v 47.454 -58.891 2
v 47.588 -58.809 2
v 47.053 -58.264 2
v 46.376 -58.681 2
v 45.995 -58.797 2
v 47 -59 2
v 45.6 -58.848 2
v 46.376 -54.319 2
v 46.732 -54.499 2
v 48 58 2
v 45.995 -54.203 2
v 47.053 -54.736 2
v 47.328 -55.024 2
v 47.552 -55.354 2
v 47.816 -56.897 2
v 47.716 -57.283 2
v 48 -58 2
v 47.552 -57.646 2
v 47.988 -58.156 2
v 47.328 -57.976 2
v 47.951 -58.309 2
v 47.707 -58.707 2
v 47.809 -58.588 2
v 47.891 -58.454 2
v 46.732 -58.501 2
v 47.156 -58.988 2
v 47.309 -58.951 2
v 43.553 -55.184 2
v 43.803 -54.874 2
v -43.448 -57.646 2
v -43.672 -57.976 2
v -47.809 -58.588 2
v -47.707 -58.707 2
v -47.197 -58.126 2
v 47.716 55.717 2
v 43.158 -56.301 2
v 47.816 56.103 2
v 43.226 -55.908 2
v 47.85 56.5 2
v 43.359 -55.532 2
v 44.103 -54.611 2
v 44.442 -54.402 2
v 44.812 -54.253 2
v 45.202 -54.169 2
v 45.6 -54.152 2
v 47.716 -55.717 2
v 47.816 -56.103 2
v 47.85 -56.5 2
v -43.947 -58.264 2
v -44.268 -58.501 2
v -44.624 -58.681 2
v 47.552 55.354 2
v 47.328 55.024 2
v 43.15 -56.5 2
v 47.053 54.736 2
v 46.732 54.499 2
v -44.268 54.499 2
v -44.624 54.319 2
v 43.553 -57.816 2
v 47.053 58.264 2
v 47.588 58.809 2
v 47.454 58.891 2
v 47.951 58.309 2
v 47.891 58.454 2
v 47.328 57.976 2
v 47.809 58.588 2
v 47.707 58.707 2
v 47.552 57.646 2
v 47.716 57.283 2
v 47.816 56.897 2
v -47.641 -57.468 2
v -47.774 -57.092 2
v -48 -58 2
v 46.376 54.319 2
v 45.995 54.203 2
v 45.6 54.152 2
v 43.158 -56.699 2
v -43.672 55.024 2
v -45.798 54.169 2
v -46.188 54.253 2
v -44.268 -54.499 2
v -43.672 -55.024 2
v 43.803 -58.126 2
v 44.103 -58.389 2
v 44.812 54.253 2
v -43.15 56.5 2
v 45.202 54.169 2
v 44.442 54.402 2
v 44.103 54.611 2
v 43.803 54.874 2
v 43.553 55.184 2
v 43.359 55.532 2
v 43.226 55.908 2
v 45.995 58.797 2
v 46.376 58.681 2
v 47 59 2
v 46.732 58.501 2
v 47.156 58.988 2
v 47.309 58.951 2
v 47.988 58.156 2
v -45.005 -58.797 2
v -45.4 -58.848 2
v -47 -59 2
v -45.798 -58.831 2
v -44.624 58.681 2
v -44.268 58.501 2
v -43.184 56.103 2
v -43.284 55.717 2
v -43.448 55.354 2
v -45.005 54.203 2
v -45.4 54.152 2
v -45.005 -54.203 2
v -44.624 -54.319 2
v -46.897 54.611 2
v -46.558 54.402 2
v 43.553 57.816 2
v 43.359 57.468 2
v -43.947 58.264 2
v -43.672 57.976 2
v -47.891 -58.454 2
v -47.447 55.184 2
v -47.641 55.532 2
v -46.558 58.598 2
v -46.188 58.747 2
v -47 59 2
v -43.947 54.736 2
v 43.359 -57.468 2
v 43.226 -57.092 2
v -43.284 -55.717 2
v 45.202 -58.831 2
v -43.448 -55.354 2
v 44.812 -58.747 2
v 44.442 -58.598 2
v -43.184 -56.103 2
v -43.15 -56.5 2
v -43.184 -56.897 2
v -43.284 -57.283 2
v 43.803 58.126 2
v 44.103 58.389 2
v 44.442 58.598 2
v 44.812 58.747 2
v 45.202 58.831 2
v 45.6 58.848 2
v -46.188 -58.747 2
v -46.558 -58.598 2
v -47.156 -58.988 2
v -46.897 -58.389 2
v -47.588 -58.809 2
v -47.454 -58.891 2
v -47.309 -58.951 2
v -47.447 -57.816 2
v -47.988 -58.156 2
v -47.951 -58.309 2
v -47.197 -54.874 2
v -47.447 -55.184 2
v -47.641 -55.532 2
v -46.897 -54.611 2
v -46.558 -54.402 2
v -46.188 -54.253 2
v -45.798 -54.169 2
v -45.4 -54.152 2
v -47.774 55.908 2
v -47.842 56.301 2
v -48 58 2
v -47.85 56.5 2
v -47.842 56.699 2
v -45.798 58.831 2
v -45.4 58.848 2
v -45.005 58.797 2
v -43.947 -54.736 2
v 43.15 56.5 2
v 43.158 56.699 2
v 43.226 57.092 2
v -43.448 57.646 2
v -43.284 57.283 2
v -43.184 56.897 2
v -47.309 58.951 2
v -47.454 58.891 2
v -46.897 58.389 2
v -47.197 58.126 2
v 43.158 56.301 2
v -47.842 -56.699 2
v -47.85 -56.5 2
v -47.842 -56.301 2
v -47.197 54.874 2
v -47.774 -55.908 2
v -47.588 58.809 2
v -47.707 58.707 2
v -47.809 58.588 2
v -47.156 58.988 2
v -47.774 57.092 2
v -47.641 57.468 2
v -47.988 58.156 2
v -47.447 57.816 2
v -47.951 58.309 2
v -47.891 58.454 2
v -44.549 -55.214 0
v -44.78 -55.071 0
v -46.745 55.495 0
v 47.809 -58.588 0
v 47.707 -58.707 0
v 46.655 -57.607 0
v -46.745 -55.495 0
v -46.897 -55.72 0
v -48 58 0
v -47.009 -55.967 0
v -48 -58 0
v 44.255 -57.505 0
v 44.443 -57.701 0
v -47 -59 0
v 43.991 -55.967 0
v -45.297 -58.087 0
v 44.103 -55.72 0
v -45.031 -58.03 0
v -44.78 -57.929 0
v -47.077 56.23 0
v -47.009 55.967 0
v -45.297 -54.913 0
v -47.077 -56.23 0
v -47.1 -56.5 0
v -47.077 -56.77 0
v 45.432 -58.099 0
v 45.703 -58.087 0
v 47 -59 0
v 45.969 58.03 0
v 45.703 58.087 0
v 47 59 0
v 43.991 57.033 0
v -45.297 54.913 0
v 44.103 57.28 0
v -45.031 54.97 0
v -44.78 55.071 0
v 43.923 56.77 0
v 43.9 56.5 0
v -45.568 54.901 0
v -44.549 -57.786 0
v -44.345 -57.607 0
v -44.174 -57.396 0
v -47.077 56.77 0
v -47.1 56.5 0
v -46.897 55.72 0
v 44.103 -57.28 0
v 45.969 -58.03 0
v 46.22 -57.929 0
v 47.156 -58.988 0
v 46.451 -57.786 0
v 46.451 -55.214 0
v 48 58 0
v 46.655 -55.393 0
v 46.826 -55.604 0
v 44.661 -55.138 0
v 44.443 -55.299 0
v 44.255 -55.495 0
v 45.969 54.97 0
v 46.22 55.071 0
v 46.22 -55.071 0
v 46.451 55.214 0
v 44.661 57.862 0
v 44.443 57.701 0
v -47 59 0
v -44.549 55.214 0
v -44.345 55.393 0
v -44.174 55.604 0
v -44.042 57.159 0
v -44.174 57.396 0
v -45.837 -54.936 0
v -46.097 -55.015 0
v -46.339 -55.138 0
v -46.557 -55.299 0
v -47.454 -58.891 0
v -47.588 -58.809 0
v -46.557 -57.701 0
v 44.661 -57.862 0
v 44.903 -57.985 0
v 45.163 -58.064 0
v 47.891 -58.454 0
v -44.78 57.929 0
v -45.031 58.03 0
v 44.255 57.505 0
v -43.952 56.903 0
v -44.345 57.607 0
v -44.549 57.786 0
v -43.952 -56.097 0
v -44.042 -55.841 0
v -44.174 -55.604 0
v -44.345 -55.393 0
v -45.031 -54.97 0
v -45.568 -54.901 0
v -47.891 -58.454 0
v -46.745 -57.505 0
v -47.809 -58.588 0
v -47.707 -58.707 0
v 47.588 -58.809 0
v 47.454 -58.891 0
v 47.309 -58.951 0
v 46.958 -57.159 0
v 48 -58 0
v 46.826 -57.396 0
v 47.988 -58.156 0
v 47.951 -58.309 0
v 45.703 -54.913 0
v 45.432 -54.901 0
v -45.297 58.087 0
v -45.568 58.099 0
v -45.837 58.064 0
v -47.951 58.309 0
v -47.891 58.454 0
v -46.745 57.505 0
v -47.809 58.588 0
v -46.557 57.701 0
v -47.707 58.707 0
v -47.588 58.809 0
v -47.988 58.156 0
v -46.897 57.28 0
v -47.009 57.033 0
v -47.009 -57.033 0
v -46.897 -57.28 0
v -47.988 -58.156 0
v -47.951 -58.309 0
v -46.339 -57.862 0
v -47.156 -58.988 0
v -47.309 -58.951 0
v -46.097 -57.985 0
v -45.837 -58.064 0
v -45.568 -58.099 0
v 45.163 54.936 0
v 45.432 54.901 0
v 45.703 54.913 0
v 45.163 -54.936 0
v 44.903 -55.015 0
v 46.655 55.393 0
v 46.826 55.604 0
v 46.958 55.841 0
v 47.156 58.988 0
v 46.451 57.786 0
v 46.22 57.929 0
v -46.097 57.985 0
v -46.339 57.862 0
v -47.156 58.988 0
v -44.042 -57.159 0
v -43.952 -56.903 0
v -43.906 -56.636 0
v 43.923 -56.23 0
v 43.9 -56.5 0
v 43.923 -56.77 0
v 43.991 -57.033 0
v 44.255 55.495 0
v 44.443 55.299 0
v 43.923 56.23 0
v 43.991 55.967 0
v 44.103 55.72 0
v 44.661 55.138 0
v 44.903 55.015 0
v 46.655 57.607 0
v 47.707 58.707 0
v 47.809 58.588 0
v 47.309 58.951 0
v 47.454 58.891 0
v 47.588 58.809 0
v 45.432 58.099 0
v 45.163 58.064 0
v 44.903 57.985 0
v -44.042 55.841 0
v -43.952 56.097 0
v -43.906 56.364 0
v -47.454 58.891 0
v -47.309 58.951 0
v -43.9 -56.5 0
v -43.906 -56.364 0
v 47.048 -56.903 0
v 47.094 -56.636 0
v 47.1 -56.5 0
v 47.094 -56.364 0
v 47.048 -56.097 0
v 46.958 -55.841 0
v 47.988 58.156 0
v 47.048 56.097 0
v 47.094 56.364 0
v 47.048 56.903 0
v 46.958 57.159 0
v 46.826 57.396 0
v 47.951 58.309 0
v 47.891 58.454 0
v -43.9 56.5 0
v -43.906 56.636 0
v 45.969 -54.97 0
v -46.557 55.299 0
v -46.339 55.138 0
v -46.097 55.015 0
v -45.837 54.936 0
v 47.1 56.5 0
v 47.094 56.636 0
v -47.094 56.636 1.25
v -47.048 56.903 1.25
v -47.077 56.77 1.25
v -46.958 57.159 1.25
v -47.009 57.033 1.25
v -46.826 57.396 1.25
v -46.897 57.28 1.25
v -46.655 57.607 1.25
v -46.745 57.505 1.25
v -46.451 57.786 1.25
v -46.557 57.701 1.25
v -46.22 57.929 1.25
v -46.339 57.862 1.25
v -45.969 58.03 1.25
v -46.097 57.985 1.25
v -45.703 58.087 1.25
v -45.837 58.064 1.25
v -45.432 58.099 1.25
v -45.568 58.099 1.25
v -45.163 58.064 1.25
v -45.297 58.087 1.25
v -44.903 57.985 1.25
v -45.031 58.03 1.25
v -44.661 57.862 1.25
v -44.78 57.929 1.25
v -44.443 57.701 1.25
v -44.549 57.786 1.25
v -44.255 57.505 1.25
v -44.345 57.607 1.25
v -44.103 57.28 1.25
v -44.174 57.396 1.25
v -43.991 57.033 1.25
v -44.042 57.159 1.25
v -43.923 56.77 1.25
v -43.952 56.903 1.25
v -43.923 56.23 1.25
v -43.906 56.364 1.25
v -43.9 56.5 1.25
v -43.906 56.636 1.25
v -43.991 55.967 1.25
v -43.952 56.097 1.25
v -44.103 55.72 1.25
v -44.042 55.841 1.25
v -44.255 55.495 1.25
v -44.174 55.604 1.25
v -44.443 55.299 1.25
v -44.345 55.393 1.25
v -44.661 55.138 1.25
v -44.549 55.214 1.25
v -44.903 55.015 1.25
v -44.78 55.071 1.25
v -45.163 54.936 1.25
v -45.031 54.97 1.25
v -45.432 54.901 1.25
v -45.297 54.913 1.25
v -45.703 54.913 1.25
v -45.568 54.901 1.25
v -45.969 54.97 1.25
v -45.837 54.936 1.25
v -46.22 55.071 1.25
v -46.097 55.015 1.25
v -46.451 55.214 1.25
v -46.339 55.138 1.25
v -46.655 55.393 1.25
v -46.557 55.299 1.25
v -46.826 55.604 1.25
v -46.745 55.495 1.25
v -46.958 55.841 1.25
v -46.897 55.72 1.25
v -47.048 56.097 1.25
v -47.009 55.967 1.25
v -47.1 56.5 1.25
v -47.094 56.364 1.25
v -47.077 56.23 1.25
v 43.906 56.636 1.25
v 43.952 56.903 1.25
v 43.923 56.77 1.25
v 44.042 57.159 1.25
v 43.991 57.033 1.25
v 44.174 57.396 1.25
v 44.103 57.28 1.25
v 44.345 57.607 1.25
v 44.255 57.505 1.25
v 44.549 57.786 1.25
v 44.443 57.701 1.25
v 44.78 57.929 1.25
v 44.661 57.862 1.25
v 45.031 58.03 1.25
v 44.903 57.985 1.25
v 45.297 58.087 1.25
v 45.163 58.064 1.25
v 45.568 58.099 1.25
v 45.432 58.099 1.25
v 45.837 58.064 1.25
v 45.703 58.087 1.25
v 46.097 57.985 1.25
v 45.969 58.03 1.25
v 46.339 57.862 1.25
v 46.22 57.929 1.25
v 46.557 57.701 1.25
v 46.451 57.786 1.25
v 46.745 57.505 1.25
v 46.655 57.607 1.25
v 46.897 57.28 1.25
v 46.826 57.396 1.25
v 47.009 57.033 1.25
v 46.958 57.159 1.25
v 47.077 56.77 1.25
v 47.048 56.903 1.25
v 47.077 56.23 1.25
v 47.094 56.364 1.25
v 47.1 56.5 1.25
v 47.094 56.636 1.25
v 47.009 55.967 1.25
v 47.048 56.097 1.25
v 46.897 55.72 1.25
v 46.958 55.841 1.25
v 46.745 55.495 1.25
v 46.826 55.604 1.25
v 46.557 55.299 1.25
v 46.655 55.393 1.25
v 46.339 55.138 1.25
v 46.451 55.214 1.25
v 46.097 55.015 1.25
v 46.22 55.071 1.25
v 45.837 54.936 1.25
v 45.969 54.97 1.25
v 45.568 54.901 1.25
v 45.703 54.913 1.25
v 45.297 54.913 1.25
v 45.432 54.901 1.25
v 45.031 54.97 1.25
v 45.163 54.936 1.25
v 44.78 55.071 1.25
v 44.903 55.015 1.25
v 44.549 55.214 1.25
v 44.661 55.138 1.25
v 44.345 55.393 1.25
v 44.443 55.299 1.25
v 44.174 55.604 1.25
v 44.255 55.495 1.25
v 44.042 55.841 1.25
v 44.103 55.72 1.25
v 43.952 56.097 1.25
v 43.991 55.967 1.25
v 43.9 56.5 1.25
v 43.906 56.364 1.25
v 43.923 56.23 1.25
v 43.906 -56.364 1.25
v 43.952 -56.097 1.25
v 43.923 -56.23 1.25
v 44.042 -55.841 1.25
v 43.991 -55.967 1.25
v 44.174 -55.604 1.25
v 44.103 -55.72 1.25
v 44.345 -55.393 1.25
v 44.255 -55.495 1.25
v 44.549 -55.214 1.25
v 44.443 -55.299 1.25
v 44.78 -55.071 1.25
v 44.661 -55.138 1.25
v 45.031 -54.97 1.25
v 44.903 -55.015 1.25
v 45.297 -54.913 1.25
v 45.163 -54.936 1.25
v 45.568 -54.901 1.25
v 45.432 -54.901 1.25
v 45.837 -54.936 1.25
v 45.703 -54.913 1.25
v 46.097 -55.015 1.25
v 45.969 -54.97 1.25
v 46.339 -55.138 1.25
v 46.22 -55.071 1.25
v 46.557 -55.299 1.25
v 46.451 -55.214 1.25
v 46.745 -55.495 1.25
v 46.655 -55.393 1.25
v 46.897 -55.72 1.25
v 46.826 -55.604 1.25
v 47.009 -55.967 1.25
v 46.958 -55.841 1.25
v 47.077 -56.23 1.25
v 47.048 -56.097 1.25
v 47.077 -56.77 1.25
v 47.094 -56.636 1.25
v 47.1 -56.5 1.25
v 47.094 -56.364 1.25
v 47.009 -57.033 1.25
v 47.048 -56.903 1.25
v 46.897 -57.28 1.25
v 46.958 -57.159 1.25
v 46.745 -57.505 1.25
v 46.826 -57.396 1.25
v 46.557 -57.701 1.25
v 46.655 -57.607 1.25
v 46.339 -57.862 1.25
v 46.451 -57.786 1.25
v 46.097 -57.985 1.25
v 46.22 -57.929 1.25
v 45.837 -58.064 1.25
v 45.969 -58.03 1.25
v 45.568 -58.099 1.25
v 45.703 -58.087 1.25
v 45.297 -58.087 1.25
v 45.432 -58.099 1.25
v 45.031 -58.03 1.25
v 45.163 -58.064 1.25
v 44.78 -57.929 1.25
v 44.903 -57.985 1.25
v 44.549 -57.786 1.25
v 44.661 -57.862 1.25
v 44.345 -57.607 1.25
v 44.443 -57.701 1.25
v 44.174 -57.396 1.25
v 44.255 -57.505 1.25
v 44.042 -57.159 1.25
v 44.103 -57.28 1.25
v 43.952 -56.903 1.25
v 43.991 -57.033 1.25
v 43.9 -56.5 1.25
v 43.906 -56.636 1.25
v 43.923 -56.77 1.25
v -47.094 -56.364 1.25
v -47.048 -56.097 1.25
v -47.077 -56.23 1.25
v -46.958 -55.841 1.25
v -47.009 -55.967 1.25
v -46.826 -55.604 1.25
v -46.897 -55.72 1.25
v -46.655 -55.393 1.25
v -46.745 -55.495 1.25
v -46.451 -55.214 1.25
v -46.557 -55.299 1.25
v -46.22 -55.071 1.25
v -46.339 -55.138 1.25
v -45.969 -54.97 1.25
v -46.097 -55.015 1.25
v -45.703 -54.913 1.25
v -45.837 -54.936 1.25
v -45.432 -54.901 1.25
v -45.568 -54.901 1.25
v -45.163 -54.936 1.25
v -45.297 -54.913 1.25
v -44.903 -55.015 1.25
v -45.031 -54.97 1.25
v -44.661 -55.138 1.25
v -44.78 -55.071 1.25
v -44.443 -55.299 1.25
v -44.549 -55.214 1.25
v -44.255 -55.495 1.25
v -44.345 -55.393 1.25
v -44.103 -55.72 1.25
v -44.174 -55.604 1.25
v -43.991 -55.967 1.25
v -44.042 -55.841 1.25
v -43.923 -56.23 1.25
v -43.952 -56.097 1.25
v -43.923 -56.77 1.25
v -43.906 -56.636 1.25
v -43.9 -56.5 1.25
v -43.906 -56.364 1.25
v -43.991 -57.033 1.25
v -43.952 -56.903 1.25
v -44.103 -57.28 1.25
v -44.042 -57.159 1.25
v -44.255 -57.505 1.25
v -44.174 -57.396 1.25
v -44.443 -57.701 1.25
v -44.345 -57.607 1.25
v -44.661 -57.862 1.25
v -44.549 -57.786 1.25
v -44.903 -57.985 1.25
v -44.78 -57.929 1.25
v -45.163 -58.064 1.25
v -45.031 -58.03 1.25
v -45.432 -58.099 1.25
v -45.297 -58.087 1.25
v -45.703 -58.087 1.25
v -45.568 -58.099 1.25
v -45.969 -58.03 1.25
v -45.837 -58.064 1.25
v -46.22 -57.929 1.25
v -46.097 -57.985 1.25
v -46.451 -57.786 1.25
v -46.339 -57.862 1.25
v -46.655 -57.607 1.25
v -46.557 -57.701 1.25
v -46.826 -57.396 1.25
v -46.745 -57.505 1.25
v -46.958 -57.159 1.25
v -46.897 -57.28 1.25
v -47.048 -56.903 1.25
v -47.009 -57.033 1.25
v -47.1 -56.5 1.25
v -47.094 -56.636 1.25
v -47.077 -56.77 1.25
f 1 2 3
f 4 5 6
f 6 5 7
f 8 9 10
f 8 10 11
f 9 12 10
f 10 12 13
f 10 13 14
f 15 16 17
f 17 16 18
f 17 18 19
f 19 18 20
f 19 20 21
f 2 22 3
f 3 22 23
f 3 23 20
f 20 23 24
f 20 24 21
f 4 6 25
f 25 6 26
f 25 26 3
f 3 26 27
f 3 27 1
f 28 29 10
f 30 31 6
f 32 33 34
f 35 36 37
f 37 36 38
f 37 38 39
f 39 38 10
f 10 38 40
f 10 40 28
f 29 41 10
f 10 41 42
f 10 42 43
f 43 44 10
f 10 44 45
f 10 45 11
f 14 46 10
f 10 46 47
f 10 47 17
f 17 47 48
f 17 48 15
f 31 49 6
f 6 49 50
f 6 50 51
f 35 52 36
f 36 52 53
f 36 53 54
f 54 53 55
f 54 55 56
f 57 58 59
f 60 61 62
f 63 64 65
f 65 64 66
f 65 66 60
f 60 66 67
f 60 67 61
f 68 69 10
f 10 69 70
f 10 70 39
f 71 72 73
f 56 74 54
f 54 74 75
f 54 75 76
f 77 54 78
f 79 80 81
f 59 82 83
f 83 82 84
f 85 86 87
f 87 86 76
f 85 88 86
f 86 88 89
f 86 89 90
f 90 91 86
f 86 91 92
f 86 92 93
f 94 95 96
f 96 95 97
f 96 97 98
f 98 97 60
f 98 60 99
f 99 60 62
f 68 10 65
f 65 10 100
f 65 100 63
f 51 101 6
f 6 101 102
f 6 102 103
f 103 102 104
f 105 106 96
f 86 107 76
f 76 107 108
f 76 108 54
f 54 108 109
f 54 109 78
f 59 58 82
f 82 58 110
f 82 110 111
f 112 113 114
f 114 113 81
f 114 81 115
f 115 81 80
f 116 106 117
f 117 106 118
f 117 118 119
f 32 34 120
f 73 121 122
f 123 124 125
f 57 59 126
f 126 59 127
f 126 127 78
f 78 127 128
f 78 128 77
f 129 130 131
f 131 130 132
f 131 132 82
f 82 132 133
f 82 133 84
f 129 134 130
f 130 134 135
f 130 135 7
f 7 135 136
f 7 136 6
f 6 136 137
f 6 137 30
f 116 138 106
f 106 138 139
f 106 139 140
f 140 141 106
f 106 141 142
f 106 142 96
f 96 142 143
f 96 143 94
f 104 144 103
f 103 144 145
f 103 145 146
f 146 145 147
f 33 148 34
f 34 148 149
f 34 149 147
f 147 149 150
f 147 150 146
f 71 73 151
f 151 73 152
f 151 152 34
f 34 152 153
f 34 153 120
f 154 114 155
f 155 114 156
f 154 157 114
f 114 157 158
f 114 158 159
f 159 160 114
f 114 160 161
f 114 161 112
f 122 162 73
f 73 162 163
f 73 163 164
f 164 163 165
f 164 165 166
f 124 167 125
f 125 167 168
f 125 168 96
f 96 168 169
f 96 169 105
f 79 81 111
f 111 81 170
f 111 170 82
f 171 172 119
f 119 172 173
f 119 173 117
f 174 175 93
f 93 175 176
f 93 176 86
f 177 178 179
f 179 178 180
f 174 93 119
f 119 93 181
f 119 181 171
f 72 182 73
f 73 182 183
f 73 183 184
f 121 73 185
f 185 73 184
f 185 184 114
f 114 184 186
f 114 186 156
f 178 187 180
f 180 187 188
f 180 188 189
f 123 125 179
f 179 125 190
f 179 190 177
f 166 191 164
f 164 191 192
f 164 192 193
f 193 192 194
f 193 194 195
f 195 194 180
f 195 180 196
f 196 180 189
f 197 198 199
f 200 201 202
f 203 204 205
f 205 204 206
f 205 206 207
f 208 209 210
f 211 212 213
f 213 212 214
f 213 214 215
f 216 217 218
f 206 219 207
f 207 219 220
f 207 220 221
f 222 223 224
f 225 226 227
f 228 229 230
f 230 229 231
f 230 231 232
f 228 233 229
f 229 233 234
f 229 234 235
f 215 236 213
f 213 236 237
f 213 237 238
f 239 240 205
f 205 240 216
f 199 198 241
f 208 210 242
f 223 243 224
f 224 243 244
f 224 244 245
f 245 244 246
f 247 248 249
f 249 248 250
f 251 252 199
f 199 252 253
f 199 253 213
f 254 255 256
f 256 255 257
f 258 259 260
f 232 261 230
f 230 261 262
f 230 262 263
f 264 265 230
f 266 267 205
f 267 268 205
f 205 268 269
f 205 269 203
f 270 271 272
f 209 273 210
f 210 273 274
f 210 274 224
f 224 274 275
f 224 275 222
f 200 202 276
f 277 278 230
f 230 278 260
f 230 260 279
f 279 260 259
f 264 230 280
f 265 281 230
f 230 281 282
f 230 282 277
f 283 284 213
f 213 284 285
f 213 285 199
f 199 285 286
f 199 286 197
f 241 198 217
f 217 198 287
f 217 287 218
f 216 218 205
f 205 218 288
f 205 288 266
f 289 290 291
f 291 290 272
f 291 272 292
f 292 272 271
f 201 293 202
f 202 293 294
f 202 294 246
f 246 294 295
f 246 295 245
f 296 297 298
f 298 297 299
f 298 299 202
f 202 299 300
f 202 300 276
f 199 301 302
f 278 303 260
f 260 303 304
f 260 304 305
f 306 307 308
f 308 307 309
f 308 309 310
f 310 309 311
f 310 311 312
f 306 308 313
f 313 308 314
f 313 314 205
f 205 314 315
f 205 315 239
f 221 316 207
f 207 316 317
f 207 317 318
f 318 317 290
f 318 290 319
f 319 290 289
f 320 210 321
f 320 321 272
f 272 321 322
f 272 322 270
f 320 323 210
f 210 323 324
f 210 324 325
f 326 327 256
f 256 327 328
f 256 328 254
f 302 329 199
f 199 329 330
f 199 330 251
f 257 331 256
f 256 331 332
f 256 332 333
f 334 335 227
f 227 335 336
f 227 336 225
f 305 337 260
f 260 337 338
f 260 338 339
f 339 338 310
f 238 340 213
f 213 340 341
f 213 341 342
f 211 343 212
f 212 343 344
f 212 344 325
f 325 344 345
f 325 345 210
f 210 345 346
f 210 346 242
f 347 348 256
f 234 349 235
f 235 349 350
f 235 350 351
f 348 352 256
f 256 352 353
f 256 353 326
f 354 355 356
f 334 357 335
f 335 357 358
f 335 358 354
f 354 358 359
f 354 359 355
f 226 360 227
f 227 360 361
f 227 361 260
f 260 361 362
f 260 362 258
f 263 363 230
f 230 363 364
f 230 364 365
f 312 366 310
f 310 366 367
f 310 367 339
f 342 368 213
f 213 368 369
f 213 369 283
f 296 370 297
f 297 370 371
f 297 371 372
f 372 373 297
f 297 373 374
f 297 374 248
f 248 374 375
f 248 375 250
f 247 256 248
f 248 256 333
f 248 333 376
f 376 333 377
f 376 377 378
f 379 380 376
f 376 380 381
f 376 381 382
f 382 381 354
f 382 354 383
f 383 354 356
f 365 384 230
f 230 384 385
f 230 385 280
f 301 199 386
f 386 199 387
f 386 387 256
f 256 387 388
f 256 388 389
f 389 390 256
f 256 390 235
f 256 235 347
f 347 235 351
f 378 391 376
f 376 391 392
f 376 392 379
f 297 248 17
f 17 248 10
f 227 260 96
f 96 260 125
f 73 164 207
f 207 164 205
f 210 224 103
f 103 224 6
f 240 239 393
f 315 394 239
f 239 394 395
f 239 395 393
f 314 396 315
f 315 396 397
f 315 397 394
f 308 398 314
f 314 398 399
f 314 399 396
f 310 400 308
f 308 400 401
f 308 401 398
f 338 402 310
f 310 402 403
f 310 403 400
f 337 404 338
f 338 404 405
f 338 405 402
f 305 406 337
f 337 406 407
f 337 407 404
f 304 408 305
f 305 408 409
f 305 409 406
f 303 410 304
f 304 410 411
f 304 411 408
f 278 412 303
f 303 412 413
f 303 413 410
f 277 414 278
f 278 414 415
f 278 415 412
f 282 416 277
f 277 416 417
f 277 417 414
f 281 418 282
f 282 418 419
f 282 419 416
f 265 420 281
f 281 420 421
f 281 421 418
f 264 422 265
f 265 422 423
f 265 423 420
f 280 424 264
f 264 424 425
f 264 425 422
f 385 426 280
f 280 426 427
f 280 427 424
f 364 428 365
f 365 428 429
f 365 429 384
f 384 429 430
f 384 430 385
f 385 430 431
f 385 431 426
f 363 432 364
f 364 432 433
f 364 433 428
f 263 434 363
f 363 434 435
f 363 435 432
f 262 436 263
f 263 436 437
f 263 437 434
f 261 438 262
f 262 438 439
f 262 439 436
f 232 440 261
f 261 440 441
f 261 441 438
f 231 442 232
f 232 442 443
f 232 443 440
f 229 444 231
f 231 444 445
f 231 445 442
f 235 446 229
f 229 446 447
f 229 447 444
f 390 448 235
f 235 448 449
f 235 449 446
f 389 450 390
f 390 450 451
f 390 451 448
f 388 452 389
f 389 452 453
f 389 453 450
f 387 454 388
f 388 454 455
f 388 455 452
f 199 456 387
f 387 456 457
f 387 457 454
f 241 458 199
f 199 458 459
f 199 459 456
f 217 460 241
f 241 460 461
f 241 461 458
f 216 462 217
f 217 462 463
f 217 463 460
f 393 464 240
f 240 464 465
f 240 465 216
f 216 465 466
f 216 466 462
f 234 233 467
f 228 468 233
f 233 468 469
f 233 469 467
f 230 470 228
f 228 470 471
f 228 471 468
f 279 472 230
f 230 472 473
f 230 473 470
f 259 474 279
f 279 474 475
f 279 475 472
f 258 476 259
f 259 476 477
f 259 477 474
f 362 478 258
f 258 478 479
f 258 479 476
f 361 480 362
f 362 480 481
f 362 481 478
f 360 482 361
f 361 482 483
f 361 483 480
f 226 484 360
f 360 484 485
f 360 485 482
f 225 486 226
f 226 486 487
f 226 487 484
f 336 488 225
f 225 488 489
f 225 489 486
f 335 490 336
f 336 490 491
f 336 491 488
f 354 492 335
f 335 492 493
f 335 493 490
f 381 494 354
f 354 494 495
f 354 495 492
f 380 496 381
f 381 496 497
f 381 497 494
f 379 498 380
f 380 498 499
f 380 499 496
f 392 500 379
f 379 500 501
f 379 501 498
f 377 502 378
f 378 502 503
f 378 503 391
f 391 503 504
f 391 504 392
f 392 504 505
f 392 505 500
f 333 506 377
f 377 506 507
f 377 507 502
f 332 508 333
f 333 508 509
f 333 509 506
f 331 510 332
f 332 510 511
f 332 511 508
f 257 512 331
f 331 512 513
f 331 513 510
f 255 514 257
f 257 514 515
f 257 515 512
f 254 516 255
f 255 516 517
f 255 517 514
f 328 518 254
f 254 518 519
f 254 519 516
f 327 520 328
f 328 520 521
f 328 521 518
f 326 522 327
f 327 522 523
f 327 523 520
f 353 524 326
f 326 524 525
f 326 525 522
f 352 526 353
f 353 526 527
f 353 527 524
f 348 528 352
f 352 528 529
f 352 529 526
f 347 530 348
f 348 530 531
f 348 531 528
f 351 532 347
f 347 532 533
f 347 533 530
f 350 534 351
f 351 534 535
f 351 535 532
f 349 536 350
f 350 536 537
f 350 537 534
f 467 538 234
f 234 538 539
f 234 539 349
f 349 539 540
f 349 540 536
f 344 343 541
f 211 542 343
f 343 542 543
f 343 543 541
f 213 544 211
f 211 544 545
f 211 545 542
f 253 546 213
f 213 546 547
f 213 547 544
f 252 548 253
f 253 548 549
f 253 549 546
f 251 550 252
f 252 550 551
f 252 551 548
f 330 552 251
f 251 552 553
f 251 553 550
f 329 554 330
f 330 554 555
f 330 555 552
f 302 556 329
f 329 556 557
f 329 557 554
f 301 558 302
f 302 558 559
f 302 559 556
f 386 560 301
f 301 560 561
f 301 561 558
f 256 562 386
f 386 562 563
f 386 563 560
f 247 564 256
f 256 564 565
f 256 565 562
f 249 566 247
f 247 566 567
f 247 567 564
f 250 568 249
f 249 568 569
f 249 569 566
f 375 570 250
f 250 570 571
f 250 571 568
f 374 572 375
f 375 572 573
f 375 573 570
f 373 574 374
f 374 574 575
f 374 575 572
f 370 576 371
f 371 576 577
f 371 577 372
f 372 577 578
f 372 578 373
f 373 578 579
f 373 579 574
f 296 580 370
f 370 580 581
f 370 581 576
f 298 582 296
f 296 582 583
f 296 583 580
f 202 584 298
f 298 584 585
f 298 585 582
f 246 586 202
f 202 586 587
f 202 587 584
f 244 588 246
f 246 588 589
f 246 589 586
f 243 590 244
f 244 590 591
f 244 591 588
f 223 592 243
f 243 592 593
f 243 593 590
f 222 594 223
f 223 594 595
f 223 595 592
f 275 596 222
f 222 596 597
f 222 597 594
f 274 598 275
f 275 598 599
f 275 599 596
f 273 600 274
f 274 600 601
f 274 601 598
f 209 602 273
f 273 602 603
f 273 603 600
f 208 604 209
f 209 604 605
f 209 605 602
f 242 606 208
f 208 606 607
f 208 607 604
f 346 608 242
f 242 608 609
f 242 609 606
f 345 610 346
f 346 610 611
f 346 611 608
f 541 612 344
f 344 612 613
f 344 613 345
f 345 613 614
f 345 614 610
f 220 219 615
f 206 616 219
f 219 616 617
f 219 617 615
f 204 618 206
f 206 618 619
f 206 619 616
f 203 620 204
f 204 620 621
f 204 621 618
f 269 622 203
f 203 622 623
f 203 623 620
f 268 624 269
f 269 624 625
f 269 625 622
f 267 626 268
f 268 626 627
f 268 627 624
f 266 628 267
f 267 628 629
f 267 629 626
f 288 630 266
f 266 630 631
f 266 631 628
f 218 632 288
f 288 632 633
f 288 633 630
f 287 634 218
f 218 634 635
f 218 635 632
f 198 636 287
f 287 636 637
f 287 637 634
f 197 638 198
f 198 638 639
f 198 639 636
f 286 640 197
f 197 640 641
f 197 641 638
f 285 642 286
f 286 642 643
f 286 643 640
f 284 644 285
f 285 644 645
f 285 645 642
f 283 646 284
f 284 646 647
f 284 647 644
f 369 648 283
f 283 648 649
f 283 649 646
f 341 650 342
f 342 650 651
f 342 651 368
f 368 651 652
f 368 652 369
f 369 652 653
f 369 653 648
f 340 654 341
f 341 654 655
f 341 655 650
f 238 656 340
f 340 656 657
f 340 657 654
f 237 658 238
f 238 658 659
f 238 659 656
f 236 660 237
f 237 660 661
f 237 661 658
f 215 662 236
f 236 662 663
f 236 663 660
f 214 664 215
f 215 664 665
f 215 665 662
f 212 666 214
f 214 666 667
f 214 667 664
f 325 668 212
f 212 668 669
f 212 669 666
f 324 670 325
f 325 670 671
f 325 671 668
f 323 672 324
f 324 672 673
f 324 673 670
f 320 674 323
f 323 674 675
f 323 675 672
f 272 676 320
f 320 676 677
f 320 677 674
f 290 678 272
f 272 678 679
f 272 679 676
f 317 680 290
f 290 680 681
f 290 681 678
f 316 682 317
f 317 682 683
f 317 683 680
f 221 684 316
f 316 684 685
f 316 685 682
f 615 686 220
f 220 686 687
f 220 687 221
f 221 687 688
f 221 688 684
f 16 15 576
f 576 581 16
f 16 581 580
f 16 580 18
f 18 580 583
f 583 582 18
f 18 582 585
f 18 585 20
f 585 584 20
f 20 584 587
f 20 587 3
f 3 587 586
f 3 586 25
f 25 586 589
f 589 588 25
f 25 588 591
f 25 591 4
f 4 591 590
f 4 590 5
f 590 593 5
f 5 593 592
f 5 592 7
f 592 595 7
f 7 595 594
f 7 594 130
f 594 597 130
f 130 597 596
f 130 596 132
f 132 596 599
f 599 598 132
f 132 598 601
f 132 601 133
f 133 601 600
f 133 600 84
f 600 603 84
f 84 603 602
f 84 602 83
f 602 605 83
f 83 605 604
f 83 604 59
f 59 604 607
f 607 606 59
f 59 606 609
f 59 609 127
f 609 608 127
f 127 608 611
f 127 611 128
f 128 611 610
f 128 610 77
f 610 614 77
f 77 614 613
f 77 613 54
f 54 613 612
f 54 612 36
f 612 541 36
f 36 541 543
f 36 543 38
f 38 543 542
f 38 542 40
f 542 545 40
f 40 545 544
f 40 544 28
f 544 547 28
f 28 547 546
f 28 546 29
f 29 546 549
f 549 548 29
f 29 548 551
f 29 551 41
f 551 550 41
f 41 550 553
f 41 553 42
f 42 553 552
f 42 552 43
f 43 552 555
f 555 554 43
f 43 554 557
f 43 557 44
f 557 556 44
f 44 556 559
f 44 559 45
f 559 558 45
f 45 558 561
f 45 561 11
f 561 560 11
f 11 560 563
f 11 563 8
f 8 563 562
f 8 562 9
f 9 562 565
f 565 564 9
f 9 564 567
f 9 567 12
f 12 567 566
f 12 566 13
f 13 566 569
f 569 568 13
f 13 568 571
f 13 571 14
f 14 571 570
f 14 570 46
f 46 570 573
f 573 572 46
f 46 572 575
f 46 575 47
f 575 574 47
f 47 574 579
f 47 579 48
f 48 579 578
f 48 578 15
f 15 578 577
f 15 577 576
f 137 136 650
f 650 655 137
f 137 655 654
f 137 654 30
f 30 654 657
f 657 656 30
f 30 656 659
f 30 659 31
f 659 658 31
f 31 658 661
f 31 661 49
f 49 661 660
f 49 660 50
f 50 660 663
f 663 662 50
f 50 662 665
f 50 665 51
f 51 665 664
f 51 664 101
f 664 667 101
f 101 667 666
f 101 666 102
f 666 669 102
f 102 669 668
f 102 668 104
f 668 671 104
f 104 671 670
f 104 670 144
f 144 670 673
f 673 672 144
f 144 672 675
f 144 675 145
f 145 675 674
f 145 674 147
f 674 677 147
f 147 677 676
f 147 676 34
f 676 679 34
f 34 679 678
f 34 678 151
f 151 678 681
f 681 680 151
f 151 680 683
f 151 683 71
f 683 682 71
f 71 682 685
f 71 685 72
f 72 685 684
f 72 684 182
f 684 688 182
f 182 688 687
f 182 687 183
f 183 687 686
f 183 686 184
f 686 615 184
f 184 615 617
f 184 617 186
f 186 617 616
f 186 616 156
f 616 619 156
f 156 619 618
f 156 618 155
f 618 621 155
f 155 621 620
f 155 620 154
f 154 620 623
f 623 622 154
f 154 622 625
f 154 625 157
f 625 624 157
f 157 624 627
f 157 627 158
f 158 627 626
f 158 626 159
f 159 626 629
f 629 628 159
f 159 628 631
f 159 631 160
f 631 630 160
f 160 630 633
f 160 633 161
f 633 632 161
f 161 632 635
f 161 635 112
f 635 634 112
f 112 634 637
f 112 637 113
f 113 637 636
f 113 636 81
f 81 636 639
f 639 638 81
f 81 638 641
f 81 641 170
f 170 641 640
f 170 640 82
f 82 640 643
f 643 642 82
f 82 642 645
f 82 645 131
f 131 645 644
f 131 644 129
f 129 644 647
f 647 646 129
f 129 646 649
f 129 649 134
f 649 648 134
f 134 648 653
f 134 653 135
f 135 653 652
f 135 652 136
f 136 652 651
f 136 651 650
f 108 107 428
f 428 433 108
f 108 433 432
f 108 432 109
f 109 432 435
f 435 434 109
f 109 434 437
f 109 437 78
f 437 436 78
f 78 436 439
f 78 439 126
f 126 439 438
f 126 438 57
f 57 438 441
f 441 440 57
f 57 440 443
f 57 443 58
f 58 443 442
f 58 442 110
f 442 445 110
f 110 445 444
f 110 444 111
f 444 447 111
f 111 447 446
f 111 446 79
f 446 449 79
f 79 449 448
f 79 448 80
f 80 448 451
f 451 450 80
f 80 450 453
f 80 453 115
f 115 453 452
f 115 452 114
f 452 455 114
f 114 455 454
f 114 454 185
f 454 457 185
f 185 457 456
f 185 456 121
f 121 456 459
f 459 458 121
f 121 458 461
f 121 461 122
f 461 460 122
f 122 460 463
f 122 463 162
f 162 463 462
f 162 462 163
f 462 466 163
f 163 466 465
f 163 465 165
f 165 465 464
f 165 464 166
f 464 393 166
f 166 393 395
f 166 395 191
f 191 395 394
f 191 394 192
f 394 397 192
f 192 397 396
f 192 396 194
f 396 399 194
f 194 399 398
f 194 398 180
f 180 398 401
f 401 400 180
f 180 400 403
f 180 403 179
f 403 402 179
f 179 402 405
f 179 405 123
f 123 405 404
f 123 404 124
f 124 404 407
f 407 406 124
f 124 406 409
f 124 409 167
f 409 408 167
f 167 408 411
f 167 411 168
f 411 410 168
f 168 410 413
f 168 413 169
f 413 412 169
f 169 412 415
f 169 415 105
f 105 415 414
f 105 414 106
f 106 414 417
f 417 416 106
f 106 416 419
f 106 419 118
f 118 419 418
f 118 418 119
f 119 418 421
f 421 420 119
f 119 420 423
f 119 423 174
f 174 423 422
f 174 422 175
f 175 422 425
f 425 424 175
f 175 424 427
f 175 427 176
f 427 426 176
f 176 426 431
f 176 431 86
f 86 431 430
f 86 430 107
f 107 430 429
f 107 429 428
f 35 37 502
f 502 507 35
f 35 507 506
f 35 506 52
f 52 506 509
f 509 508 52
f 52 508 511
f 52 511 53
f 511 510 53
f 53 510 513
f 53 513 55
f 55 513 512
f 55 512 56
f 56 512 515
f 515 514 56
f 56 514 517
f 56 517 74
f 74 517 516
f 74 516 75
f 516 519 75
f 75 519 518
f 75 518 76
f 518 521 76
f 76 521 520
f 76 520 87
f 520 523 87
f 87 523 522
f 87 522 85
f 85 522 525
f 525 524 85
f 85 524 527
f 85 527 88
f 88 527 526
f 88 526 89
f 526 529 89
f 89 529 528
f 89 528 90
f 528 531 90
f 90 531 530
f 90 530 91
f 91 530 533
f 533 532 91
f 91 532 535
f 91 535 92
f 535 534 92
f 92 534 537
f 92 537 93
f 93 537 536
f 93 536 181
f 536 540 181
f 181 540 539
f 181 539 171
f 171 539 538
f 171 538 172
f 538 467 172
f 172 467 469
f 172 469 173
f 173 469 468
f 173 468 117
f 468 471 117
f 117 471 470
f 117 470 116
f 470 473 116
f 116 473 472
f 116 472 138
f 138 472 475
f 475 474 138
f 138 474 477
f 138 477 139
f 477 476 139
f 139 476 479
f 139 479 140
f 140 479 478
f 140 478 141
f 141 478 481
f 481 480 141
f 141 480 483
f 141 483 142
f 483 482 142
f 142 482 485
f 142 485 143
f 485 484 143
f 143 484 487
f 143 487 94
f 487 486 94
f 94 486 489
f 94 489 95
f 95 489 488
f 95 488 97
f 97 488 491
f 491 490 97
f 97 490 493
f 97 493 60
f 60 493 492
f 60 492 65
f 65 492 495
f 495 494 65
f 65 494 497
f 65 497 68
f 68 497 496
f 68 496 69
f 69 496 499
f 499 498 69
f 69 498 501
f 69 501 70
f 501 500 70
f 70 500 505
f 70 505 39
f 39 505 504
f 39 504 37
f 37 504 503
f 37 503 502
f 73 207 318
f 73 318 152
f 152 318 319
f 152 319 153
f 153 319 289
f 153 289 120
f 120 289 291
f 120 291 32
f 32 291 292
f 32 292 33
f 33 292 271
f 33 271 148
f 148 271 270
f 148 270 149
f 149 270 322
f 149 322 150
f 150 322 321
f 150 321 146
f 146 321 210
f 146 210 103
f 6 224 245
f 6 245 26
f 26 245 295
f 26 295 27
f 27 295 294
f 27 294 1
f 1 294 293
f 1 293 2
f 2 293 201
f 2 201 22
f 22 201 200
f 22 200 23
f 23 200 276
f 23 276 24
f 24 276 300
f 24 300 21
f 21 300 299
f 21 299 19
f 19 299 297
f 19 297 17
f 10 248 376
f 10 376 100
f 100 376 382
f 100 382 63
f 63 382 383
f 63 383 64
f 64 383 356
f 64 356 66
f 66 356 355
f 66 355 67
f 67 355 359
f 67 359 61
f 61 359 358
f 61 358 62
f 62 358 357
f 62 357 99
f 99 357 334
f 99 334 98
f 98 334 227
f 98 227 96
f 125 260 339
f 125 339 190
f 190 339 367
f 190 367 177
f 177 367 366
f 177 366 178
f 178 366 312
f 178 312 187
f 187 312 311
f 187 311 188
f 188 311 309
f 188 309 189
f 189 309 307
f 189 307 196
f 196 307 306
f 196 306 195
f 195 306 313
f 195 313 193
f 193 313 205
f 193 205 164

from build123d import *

# Parameters (mm, degrees)
SKIZZE1_W                       = 96
SKIZZE1_H                       = 118
SKIZZE1_R                       = 1.6
AUFSATZ_LINEAR_AUSTRAGEN2_DEPTH = 2
FASE2_SIZE                      = 0.75
VERRUNDUNG2_R                   = 1


with BuildPart() as part:
    # Skizze1 → Aufsatz-Linear austragen2 (new body)
    with BuildSketch(Plane.XY):
        Rectangle(SKIZZE1_W, SKIZZE1_H)
        with Locations((-45.5, 56.5)):
            Circle(SKIZZE1_R, mode=Mode.SUBTRACT)
        with Locations((45.5, 56.5)):
            Circle(SKIZZE1_R, mode=Mode.SUBTRACT)
        with Locations((45.5, -56.5)):
            Circle(SKIZZE1_R, mode=Mode.SUBTRACT)
        with Locations((-45.5, -56.5)):
            Circle(SKIZZE1_R, mode=Mode.SUBTRACT)
    extrude(amount=AUFSATZ_LINEAR_AUSTRAGEN2_DEPTH)

    # Fase2
    fase2_edges = [part.edges().sort_by_distance(p)[0] for p in [
        (-47.1, 56.5, 2),
        (43.9, 56.5, 2),
        (43.9, -56.5, 2),
        (-47.1, -56.5, 2),
    ]]
    chamfer(fase2_edges, length=FASE2_SIZE)

    # Verrundung2
    verrundung2_edges = [part.edges().sort_by_distance(p)[0] for p in [
        (48, -59, 1),
        (-48, -59, 1),
        (-48, 59, 1),
        (48, 59, 1),
    ]]
    fillet(verrundung2_edges, radius=VERRUNDUNG2_R)


solid = part.part
